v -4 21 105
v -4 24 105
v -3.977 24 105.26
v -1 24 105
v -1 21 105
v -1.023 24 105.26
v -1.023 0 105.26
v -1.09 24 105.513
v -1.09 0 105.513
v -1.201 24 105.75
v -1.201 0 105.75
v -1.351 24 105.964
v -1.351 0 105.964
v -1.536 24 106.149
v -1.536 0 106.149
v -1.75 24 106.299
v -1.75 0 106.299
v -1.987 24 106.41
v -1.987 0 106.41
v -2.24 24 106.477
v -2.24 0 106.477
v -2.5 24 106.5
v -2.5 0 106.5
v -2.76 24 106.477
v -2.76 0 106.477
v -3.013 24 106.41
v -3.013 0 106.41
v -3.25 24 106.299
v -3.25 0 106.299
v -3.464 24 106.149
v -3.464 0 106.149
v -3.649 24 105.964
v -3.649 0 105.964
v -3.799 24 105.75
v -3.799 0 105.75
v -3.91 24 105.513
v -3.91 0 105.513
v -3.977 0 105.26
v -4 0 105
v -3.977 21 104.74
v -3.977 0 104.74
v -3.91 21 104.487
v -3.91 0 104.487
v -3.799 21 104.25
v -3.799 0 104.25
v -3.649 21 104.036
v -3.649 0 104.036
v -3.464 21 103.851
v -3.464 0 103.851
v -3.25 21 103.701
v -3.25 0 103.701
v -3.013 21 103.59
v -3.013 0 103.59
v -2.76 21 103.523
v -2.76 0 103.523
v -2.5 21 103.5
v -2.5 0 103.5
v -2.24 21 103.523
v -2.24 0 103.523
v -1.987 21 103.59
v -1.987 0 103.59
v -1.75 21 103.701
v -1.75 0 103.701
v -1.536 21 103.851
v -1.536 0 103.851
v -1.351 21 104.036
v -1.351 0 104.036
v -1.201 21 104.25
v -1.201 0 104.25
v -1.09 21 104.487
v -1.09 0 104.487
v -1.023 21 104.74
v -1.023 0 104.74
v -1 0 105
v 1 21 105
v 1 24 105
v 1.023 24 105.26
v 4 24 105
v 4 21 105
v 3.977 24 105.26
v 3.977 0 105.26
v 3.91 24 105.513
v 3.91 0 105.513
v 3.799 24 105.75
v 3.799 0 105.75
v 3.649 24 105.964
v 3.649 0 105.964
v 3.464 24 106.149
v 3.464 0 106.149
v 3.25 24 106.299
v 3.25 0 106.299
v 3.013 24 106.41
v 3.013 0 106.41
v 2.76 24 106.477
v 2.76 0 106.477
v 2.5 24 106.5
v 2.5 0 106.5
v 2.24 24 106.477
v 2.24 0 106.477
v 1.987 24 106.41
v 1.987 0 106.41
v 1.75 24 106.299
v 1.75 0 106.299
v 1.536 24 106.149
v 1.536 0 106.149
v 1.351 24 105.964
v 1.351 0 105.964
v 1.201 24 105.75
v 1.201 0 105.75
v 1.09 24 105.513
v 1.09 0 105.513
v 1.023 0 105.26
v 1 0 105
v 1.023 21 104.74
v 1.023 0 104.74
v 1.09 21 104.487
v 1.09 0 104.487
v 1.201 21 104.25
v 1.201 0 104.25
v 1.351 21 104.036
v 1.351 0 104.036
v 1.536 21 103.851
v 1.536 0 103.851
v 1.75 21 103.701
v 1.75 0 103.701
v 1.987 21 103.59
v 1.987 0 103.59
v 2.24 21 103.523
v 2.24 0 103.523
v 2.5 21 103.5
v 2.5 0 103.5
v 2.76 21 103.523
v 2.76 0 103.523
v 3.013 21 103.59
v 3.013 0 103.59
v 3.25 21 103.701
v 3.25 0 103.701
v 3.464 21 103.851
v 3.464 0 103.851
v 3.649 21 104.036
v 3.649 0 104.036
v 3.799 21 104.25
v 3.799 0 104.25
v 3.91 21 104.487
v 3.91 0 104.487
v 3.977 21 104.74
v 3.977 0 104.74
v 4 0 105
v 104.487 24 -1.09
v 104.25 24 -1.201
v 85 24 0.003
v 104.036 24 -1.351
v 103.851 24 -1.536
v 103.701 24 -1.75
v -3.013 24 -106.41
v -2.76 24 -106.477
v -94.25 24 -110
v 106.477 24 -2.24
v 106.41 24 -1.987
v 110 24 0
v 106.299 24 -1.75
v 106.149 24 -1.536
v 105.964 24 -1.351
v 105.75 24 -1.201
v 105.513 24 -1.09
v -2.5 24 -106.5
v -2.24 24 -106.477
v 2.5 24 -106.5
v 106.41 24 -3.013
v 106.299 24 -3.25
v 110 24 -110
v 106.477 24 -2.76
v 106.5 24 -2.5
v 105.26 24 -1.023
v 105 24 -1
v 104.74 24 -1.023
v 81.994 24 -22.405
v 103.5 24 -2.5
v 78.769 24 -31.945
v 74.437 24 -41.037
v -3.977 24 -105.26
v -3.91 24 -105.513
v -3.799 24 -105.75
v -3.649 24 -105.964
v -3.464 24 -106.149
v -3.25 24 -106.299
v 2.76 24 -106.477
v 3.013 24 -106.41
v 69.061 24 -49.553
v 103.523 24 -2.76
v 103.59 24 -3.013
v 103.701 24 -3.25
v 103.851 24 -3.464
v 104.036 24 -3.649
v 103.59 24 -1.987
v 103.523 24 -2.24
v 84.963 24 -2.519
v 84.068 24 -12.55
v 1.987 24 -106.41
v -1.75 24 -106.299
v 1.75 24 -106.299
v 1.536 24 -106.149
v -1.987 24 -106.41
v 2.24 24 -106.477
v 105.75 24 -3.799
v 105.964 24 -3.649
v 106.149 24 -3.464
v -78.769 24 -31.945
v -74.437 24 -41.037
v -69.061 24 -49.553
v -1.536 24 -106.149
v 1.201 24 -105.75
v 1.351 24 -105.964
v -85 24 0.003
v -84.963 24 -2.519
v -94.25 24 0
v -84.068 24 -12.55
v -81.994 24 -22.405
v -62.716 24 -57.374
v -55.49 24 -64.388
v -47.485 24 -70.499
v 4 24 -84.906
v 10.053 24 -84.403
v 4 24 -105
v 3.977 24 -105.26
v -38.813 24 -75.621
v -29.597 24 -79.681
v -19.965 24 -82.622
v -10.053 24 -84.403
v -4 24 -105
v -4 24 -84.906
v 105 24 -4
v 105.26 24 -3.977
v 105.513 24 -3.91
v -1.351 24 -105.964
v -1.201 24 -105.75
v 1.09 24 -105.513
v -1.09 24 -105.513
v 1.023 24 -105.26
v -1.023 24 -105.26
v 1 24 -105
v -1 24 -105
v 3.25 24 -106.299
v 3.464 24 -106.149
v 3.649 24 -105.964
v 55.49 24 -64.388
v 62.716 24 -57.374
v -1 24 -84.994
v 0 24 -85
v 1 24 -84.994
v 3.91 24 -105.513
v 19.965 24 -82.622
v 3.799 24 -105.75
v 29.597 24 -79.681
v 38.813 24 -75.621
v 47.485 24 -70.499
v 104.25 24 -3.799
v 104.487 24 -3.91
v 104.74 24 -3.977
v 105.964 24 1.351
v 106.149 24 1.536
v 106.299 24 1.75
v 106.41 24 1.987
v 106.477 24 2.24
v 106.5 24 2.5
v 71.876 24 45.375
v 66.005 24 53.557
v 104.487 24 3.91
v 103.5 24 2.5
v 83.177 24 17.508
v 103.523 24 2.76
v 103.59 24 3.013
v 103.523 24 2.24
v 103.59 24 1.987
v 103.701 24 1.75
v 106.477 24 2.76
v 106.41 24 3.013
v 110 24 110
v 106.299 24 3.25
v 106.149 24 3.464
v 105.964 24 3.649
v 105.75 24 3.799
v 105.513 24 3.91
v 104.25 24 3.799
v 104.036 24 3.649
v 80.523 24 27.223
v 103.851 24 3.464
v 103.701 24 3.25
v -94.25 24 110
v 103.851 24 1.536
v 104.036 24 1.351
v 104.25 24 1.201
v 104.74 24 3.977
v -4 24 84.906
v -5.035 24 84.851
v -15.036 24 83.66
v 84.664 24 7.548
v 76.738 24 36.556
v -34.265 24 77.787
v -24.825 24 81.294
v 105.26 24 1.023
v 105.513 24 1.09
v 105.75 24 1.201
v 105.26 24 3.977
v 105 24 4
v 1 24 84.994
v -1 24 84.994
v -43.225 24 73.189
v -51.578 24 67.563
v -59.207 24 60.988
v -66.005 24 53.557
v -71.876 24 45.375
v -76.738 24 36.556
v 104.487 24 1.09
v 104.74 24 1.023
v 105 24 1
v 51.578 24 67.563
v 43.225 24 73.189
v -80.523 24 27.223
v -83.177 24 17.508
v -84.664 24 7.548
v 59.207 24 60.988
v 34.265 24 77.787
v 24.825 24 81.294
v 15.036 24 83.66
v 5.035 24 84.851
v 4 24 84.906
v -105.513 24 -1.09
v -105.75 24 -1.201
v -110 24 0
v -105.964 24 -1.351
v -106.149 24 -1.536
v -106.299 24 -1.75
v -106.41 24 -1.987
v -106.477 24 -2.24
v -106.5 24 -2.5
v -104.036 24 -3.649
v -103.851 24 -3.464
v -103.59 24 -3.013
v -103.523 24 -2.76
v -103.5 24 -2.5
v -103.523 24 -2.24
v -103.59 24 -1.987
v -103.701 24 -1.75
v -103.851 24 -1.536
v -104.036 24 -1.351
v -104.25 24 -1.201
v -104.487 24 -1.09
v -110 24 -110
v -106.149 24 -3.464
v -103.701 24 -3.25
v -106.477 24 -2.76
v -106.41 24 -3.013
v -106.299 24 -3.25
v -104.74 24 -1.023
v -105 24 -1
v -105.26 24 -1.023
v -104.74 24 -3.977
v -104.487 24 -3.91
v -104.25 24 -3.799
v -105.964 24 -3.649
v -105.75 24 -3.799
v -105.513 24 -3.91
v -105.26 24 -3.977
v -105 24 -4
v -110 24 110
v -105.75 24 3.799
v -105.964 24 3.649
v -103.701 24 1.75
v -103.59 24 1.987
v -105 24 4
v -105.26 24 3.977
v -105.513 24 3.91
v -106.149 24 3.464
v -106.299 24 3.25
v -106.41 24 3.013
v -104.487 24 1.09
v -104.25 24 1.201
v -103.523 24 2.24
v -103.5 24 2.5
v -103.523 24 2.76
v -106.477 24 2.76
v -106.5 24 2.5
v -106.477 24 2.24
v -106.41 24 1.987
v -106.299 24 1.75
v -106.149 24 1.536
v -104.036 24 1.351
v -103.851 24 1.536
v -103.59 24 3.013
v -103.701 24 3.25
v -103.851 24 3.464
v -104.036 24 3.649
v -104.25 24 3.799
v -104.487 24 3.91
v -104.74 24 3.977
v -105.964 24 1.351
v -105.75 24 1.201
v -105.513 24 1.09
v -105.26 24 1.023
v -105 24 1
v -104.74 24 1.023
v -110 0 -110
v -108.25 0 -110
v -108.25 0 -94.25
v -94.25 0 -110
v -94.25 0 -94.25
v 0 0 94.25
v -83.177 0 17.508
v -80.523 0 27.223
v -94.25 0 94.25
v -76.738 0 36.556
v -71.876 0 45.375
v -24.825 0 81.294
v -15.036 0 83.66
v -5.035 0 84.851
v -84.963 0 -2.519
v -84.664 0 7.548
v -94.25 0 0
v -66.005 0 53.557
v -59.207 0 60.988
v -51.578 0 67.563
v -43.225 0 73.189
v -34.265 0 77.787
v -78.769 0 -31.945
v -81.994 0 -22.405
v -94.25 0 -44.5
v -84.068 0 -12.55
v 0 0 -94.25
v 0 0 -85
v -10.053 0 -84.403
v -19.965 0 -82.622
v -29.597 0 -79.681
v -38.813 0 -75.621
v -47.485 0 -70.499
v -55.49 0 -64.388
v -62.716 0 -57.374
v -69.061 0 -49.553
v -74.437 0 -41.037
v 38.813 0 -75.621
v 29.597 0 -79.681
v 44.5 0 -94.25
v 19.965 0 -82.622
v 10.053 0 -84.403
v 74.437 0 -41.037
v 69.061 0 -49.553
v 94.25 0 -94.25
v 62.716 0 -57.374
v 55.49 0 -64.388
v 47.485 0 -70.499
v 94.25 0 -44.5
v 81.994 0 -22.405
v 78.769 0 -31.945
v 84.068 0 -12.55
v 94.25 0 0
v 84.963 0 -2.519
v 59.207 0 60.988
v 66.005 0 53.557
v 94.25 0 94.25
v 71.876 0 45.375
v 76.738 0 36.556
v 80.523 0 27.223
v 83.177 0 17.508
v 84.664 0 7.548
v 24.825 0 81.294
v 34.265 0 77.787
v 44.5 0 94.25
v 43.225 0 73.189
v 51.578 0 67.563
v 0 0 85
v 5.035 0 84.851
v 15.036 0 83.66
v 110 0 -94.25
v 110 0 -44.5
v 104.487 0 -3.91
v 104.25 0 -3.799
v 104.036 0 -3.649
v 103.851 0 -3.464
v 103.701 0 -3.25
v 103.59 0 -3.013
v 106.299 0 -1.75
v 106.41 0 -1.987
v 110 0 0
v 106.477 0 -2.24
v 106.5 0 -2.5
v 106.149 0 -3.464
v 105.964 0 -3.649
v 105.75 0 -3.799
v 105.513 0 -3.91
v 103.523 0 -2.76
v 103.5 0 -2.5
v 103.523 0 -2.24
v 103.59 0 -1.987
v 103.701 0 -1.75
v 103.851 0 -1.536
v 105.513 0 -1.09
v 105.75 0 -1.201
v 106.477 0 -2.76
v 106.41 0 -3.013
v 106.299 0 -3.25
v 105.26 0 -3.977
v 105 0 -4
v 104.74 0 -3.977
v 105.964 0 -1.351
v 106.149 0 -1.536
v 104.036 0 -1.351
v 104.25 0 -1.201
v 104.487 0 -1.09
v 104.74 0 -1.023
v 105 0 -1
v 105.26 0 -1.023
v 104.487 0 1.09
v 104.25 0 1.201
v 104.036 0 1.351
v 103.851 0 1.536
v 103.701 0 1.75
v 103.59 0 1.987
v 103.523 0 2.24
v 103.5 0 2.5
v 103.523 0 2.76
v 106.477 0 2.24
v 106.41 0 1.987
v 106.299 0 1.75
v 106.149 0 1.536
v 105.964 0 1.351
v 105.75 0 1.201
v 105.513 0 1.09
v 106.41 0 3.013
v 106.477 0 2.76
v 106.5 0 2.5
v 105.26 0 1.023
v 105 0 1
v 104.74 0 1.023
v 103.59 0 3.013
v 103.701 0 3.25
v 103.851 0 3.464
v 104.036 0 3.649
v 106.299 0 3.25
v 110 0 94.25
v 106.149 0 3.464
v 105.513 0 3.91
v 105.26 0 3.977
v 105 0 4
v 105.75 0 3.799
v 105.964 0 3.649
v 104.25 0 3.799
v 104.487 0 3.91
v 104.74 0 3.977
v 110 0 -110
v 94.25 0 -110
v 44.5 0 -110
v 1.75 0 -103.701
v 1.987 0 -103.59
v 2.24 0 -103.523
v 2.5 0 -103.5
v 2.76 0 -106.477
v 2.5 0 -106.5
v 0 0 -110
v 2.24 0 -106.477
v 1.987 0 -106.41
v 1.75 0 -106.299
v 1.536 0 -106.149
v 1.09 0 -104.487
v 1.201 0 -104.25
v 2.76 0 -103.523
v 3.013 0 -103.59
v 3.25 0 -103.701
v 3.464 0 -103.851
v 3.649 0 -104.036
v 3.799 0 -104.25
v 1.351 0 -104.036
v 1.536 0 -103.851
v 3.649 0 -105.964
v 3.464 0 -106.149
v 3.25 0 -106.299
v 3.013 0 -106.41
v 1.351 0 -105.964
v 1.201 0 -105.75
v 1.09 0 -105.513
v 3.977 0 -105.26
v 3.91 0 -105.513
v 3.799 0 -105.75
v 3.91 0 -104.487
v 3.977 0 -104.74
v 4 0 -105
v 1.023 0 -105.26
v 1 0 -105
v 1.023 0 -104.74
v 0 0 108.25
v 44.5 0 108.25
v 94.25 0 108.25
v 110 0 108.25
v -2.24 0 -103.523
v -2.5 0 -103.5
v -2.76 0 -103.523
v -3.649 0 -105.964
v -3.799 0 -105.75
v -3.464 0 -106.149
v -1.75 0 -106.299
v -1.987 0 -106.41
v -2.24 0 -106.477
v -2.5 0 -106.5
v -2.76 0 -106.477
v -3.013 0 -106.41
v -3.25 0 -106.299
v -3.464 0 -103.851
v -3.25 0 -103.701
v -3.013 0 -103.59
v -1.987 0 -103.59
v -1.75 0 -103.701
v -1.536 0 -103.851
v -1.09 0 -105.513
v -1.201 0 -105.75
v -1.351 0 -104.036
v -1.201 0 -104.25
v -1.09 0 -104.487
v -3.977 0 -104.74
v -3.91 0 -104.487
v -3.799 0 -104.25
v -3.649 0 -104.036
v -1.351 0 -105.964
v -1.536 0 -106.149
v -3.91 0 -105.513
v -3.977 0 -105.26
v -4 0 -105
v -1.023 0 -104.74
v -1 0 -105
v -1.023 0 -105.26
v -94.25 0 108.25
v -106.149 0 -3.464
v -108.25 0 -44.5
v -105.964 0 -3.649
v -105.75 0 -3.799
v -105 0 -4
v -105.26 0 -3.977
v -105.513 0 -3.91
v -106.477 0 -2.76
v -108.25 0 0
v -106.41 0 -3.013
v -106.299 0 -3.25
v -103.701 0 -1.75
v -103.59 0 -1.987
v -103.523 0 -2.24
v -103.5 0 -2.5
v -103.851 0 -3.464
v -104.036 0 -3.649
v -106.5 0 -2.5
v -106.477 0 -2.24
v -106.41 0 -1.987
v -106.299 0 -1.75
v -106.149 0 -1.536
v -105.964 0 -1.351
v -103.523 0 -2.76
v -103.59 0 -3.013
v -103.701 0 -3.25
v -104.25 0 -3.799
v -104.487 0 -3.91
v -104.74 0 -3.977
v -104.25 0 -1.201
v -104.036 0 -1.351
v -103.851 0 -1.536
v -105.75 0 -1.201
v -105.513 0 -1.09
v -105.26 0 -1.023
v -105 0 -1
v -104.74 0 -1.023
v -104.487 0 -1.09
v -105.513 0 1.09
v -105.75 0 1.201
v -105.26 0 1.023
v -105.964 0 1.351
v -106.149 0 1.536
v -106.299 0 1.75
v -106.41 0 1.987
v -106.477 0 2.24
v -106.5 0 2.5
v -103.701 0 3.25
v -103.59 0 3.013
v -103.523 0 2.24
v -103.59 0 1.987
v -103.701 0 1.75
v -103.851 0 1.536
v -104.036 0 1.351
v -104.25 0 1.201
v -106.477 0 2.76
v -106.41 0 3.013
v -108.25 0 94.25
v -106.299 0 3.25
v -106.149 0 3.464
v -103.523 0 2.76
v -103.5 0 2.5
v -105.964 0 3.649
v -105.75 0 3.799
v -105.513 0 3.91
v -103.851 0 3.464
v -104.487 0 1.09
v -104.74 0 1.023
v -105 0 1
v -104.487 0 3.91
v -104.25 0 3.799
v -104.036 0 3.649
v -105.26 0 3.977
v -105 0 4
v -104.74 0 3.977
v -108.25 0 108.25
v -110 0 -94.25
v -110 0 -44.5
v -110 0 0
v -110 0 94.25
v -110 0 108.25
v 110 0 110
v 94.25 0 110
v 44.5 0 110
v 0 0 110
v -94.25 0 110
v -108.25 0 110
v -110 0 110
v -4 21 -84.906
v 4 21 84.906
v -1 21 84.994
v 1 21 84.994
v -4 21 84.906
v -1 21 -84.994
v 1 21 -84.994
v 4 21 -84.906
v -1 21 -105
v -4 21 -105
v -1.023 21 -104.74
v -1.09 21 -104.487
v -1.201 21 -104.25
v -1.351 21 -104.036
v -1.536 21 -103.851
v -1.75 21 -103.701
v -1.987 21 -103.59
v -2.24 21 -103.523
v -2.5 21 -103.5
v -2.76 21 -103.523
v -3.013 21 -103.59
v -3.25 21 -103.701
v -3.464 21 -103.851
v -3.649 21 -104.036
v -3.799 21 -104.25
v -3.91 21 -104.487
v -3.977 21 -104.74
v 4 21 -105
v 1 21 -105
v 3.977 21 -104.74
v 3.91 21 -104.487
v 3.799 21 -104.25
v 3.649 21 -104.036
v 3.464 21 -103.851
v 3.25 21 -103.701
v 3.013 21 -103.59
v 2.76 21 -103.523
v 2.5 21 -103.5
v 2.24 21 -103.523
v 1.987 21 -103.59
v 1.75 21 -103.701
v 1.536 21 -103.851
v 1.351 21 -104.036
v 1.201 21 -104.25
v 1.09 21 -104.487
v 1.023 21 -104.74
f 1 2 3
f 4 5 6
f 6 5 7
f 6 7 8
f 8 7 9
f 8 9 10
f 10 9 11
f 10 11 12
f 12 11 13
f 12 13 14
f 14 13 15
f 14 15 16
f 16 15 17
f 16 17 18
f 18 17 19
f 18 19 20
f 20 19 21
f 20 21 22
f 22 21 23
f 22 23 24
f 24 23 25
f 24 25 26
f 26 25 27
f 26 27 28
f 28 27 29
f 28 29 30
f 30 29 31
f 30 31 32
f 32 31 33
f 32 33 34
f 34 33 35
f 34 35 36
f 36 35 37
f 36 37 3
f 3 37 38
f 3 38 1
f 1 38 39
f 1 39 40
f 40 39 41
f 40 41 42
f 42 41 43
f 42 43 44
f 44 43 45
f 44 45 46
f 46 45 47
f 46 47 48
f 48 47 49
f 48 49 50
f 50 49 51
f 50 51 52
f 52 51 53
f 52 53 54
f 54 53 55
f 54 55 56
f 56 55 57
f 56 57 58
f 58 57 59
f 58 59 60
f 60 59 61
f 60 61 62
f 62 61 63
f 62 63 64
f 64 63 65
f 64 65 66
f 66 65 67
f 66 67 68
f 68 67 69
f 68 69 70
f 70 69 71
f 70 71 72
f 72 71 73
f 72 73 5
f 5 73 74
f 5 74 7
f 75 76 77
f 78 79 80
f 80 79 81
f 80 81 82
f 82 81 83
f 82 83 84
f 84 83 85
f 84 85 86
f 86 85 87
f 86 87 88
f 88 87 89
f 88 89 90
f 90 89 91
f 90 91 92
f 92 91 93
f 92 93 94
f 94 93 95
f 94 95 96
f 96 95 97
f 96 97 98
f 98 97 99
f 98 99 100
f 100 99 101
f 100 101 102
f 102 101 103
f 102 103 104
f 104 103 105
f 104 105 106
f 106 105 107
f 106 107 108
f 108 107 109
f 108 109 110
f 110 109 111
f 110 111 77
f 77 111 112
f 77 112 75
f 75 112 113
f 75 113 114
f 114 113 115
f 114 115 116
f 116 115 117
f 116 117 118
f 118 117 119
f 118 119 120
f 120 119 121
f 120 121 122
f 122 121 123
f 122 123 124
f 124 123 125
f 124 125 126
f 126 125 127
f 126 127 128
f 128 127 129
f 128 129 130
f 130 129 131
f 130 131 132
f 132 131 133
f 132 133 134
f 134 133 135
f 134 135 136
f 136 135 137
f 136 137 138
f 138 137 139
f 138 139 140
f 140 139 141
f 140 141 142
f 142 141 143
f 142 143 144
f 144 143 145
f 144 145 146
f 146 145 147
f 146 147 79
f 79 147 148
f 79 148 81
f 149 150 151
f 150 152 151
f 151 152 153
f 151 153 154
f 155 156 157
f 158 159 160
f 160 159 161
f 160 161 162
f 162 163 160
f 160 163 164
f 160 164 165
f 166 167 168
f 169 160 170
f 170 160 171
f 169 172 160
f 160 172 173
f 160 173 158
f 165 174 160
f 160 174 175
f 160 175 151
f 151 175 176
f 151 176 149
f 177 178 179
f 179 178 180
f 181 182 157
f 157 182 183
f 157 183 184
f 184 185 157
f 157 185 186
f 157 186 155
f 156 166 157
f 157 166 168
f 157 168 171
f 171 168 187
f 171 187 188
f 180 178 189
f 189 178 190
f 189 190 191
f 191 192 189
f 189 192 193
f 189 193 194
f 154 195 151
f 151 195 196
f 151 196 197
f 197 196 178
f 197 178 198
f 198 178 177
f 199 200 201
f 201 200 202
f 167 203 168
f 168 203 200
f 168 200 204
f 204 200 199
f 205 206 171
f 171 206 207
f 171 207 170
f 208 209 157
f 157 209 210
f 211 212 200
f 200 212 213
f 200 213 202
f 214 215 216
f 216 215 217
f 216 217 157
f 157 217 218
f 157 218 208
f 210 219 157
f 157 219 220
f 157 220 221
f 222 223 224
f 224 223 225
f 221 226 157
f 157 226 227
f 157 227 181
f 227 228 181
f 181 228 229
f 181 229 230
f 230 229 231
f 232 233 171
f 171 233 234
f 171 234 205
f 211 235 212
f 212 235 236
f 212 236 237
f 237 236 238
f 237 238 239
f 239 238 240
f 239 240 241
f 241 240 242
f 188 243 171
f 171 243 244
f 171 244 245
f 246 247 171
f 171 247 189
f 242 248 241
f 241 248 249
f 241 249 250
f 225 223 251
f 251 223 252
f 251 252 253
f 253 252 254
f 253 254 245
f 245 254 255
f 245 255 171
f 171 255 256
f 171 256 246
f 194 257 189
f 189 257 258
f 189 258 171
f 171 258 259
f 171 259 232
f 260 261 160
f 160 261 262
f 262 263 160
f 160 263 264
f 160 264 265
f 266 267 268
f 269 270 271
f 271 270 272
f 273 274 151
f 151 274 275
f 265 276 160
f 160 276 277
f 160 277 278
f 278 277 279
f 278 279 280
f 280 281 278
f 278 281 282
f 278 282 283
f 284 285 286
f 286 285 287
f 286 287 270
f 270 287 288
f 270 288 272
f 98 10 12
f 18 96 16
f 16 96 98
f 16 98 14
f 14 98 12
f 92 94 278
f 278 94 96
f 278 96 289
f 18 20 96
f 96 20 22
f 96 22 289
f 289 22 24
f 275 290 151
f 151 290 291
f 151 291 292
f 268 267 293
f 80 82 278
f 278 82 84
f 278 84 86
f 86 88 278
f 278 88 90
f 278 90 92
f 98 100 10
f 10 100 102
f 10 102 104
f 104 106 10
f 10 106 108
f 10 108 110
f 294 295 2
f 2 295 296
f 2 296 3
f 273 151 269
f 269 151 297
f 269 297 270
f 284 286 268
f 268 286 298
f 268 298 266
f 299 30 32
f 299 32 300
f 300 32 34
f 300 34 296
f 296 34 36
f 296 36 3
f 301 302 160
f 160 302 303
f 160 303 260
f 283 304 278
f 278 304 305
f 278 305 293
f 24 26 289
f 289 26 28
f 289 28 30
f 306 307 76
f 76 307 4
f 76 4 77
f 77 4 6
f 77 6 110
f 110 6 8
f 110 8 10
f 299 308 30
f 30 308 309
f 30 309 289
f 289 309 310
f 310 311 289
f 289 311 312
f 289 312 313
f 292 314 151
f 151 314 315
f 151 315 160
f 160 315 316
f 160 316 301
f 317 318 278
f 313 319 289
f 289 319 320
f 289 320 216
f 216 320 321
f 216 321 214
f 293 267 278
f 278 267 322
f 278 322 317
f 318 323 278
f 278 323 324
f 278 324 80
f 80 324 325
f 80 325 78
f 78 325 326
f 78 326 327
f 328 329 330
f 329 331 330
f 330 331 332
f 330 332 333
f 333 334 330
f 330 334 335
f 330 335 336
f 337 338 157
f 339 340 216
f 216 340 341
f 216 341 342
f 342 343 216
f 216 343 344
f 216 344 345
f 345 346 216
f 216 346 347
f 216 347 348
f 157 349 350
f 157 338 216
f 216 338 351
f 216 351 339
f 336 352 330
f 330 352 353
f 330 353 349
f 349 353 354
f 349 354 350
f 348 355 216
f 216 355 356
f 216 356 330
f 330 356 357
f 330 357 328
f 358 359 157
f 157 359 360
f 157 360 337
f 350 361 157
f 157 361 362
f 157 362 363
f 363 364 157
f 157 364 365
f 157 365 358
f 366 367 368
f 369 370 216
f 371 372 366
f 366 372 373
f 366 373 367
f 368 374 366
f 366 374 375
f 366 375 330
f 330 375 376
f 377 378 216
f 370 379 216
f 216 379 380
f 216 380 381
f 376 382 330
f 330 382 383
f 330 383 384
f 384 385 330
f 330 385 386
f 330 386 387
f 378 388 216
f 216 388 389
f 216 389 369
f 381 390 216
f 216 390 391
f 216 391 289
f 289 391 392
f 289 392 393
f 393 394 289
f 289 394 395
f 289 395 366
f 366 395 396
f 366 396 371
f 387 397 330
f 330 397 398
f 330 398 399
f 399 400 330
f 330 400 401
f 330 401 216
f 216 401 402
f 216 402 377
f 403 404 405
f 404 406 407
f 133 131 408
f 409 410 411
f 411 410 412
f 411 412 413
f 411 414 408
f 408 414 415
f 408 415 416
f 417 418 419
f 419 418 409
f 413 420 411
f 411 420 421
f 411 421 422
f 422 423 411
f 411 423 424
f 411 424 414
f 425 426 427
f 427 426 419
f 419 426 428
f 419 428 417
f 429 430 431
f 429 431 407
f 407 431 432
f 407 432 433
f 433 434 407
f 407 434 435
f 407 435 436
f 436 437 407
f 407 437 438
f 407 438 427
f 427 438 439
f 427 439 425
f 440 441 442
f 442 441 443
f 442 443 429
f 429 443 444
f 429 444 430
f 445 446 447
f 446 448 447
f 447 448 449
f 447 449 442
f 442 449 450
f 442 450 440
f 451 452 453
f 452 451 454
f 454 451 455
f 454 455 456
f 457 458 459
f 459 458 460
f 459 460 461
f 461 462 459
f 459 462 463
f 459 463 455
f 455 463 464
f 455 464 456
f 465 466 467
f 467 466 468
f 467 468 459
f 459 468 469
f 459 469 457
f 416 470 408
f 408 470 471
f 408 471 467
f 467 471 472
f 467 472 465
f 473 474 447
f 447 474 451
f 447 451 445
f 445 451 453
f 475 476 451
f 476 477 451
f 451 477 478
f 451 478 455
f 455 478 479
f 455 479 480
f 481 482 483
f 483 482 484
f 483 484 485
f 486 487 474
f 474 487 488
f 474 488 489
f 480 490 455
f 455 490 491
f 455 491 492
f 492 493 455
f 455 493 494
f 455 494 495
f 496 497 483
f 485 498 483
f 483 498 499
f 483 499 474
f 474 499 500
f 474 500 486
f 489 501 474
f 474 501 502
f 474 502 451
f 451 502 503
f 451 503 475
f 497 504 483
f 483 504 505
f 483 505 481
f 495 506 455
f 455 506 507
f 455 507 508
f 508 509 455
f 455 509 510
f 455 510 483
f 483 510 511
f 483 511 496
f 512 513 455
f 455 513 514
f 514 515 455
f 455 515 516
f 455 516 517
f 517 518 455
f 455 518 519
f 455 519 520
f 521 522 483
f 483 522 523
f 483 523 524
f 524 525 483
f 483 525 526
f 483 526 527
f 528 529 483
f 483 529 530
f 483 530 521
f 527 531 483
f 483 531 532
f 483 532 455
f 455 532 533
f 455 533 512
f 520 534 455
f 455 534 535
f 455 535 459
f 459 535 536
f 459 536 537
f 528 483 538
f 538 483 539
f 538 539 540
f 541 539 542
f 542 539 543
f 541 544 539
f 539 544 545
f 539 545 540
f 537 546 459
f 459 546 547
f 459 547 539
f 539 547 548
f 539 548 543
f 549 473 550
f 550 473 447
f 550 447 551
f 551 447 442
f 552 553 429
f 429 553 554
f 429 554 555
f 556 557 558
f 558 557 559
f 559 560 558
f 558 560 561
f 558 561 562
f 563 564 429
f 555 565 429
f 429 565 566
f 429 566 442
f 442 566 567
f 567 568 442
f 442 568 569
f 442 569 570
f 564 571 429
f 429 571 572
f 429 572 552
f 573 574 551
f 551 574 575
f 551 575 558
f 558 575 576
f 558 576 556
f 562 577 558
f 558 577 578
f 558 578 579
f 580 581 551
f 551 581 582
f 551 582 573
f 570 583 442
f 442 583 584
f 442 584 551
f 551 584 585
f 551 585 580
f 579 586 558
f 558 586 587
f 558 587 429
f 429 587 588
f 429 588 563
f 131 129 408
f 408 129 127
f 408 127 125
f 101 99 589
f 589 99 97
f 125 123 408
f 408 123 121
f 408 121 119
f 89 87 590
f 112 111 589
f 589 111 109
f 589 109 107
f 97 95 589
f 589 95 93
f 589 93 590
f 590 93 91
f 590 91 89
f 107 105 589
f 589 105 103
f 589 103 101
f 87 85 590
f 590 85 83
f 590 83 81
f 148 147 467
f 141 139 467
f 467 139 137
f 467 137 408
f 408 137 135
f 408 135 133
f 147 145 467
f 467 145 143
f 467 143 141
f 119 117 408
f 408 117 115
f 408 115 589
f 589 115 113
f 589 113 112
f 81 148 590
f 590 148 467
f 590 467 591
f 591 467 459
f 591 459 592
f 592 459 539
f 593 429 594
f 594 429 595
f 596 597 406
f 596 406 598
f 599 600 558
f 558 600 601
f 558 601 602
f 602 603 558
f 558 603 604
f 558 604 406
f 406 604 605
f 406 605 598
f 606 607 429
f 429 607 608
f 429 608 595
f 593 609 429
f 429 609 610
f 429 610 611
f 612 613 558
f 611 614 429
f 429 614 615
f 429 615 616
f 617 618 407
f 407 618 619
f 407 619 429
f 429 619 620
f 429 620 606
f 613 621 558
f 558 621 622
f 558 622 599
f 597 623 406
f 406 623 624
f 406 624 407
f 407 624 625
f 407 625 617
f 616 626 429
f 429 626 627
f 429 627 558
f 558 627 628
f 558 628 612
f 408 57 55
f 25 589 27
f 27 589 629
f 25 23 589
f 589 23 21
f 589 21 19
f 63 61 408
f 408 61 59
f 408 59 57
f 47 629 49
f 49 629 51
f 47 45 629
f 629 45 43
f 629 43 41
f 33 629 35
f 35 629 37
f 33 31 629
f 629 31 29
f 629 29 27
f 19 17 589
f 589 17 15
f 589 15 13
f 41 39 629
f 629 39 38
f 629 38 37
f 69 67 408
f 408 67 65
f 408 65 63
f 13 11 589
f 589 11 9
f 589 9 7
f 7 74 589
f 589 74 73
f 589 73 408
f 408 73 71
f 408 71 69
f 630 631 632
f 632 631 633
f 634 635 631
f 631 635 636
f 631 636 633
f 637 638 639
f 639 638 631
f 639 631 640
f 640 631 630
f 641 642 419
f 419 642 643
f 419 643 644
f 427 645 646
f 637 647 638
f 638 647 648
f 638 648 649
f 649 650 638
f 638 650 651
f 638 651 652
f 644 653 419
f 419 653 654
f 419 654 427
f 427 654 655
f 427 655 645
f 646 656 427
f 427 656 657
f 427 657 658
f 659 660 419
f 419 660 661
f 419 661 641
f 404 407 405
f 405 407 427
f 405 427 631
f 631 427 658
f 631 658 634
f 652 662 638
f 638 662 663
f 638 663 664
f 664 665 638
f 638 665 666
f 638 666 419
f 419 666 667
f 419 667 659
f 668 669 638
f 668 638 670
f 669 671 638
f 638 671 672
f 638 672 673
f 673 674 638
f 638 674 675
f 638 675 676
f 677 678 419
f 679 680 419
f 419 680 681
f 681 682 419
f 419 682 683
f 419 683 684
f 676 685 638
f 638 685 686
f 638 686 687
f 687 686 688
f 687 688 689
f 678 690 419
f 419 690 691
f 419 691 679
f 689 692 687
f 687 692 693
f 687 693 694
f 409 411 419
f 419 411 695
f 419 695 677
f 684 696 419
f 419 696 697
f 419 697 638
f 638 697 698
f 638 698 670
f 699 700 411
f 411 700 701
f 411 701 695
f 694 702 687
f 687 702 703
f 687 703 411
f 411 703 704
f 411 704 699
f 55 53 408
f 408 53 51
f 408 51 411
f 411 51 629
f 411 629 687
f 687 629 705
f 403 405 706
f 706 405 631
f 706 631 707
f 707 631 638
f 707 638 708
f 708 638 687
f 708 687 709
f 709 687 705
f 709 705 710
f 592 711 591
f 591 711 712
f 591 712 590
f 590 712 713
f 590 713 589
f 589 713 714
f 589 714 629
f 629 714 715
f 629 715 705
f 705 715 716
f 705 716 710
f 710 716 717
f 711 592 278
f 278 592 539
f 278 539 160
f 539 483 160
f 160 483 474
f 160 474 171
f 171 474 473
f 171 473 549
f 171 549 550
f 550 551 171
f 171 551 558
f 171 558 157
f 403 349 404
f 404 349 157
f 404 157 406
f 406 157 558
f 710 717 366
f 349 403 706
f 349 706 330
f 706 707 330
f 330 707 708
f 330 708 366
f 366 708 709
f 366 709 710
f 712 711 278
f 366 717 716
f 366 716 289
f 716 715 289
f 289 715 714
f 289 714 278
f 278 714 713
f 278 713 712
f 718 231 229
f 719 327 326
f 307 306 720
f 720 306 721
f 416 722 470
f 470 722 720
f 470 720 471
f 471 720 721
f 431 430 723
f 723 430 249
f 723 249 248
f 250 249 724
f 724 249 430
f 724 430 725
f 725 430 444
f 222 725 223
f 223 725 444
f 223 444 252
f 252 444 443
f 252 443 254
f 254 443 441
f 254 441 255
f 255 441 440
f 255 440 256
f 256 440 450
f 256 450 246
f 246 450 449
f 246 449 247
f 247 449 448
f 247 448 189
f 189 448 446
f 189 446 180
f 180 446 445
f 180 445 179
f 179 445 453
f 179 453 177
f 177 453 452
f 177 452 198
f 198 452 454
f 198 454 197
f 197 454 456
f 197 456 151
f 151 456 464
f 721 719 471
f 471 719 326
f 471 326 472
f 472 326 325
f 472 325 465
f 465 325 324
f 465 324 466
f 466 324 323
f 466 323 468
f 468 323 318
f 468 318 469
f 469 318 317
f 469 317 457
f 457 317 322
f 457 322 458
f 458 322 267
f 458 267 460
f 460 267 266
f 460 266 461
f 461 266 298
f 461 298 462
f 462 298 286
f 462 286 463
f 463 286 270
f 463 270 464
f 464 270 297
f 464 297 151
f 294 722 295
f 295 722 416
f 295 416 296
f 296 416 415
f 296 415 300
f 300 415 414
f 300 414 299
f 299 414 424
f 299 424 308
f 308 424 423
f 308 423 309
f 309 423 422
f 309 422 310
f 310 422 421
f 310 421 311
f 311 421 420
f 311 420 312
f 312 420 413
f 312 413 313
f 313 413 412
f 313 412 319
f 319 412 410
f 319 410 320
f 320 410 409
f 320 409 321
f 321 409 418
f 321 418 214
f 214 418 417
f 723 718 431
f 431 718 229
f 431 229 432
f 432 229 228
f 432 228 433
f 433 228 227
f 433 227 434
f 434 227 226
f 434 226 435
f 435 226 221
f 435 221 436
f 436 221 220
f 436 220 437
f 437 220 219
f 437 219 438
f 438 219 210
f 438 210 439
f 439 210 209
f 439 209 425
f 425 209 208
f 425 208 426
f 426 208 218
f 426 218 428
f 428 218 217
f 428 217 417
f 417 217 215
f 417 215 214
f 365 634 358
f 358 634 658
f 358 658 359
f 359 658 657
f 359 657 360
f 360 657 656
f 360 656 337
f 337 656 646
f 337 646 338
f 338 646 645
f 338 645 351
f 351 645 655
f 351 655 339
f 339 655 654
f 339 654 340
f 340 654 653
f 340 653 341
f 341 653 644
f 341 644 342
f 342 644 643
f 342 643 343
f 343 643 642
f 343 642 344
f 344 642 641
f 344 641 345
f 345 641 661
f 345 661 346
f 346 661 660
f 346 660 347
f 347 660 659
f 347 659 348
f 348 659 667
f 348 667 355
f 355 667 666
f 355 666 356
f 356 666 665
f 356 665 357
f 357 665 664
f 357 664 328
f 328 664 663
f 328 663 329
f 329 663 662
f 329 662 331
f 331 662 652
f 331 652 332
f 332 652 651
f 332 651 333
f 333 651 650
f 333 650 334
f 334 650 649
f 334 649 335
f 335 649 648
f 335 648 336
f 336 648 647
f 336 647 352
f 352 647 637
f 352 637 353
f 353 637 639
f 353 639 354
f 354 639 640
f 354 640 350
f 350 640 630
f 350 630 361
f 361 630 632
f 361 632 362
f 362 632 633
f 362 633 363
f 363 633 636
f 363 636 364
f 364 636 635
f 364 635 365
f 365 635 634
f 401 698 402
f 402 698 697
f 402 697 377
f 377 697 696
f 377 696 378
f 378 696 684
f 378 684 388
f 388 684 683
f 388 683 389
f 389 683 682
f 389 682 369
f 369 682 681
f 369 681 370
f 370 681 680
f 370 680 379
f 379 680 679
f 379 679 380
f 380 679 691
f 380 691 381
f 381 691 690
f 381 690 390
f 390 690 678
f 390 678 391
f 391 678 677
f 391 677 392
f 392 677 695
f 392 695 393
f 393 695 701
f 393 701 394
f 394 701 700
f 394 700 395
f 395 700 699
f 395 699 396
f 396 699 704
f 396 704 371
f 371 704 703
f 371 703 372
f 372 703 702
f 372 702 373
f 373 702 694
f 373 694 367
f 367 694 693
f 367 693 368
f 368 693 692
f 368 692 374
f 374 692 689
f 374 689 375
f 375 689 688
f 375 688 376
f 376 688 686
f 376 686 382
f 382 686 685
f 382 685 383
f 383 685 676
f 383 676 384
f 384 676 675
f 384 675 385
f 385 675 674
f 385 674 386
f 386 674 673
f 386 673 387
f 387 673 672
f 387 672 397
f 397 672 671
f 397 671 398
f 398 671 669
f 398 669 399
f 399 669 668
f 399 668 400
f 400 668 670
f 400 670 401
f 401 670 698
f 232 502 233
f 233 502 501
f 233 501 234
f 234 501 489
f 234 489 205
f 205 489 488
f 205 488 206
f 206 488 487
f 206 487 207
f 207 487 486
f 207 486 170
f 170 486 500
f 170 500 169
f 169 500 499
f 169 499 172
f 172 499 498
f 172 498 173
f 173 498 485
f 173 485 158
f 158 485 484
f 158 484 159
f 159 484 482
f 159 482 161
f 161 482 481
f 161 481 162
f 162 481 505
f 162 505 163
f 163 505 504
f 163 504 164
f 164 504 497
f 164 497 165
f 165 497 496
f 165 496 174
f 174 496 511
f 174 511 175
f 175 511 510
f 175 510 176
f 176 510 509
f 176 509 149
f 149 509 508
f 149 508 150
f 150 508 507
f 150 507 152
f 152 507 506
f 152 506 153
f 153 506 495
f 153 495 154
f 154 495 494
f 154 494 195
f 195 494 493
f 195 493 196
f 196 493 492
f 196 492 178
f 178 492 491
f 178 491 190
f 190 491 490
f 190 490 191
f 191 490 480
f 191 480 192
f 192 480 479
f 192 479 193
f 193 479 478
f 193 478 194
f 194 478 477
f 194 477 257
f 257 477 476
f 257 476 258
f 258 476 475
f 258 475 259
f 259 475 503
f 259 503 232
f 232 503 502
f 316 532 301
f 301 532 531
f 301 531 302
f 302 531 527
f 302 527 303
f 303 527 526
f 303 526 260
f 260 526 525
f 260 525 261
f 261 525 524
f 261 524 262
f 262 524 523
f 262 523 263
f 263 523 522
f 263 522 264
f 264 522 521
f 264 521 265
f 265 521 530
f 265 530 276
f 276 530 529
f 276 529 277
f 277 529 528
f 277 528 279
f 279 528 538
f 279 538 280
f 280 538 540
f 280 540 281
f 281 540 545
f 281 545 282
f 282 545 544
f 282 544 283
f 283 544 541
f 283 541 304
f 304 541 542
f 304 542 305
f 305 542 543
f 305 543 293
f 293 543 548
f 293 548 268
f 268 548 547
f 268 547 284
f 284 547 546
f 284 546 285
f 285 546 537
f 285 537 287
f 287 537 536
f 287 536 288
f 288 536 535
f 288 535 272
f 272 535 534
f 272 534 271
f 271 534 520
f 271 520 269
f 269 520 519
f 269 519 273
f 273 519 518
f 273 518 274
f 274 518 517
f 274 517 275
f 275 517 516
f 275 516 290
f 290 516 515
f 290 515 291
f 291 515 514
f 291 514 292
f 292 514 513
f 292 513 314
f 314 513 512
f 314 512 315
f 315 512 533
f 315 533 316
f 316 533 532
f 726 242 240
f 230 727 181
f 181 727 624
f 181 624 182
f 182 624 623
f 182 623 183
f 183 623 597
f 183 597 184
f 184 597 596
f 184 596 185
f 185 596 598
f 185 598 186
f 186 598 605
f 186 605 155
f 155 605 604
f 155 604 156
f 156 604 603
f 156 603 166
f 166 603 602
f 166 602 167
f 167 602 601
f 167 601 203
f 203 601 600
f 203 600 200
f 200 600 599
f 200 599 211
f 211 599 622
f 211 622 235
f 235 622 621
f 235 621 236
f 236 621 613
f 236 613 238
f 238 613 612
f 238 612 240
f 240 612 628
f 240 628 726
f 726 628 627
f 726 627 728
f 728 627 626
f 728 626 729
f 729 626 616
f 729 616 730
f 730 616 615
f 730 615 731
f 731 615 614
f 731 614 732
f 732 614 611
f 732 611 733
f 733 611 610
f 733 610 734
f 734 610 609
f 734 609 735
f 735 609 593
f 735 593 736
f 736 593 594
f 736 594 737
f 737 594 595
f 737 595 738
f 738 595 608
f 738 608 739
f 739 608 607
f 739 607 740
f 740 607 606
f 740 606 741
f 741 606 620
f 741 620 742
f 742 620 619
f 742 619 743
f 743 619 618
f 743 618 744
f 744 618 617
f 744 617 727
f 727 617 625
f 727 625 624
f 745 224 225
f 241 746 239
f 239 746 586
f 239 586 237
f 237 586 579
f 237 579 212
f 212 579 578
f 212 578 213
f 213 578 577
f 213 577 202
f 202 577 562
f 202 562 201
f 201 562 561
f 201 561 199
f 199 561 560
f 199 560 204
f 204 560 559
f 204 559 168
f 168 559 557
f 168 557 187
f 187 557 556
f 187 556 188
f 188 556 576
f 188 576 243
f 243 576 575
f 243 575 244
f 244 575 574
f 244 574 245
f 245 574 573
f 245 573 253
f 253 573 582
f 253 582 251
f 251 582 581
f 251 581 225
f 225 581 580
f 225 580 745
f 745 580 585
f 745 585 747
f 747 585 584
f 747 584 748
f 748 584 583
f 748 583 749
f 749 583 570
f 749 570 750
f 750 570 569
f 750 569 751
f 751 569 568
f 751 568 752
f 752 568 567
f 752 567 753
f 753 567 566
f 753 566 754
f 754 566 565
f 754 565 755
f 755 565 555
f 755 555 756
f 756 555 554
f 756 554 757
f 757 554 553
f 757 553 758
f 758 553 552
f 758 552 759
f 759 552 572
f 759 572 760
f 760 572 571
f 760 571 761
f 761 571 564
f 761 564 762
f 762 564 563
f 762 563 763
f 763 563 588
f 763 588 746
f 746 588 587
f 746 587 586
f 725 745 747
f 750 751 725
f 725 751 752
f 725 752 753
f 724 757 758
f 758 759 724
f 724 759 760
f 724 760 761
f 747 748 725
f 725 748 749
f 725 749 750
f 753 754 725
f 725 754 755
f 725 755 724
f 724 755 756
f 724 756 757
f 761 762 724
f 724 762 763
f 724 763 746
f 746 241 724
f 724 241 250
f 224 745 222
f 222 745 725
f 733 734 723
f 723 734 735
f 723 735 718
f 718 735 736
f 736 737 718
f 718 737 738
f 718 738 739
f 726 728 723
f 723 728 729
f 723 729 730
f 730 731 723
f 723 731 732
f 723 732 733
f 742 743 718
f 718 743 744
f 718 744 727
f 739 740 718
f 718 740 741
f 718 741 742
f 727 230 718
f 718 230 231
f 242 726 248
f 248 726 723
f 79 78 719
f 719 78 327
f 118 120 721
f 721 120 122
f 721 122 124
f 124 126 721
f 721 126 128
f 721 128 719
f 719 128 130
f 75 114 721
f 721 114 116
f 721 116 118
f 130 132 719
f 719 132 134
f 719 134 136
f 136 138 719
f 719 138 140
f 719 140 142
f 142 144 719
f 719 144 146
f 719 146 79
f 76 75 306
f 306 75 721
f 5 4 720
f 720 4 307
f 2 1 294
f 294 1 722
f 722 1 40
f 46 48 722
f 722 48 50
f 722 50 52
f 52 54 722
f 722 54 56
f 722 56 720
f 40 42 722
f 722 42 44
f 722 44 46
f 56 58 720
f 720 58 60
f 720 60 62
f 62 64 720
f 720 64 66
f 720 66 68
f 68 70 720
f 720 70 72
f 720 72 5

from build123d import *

# Parameters (mm, degrees)
SKETCH1_W           = 220
SKETCH1_H           = 220
SKETCH1_R           = 85
SKETCH1_R_2         = 1.5
BOSS_EXTRUDE1_DEPTH = 24
CUT_EXTRUDE1_START  = -3
CUT_EXTRUDE1_DEPTH  = 3


with BuildPart() as part:
    # Sketch1 → Boss-Extrude1 (new body)
    with BuildSketch(Plane(origin=(0, 0, 0), x_dir=(1, 0, 0), z_dir=(0, 1, 0))):
        Rectangle(SKETCH1_W, SKETCH1_H)
        with Locations(Location((0, 0, 0), (0, 0, 270))):
            Circle(SKETCH1_R, mode=Mode.SUBTRACT)
        with Locations(Location((-105, 2.5, 0), (0, 0, 270))):
            Circle(SKETCH1_R_2, mode=Mode.SUBTRACT)
        with Locations(Location((-105, -2.5, 0), (0, 0, 270))):
            Circle(SKETCH1_R_2, mode=Mode.SUBTRACT)
        with Locations(Location((105, 2.5, 0), (0, 0, 270))):
            Circle(SKETCH1_R_2, mode=Mode.SUBTRACT)
        with Locations(Location((105, -2.5, 0), (0, 0, 270))):
            Circle(SKETCH1_R_2, mode=Mode.SUBTRACT)
        with Locations(Location((-2.5, -105, 0), (0, 0, 270))):
            Circle(SKETCH1_R_2, mode=Mode.SUBTRACT)
        with Locations(Location((2.5, -105, 0), (0, 0, 270))):
            Circle(SKETCH1_R_2, mode=Mode.SUBTRACT)
        with Locations(Location((-2.5, 105, 0), (0, 0, 270))):
            Circle(SKETCH1_R_2, mode=Mode.SUBTRACT)
        with Locations(Location((2.5, 105, 0), (0, 0, 270))):
            Circle(SKETCH1_R_2, mode=Mode.SUBTRACT)
    extrude(amount=BOSS_EXTRUDE1_DEPTH)

    # Sketch2 → Cut-Extrude1 (cut)
    with BuildSketch(Plane(origin=(0, 24, 0), x_dir=(1, 0, 0), z_dir=(0, 1, 0)).offset(CUT_EXTRUDE1_START)):
        with BuildLine():
            Line((4, 105), (4, -105))
            ThreePointArc((4, -105), (2.5, -106.5), (1, -105))
            Line((1, -105), (1, 105))
            ThreePointArc((1, 105), (2.5, 106.5), (4, 105))
        make_face()
        with BuildLine():
            Line((-1, 105), (-1, -105))
            ThreePointArc((-1, -105), (-2.5, -106.5), (-4, -105))
            Line((-4, -105), (-4, 105))
            ThreePointArc((-4, 105), (-2.5, 106.5), (-1, 105))
        make_face()
    extrude(amount=CUT_EXTRUDE1_DEPTH, mode=Mode.SUBTRACT)


solid = part.part
